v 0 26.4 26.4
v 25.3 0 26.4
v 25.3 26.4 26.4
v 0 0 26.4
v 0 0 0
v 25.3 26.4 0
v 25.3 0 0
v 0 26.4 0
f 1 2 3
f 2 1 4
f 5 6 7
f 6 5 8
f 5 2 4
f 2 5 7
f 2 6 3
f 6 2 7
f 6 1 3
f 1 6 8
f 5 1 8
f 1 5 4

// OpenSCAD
module ximiea_xiq()
{
    color([0, 0, 0])
    cube([25.3, 26.4, 26.4]);
}

ximiea_xiq();
